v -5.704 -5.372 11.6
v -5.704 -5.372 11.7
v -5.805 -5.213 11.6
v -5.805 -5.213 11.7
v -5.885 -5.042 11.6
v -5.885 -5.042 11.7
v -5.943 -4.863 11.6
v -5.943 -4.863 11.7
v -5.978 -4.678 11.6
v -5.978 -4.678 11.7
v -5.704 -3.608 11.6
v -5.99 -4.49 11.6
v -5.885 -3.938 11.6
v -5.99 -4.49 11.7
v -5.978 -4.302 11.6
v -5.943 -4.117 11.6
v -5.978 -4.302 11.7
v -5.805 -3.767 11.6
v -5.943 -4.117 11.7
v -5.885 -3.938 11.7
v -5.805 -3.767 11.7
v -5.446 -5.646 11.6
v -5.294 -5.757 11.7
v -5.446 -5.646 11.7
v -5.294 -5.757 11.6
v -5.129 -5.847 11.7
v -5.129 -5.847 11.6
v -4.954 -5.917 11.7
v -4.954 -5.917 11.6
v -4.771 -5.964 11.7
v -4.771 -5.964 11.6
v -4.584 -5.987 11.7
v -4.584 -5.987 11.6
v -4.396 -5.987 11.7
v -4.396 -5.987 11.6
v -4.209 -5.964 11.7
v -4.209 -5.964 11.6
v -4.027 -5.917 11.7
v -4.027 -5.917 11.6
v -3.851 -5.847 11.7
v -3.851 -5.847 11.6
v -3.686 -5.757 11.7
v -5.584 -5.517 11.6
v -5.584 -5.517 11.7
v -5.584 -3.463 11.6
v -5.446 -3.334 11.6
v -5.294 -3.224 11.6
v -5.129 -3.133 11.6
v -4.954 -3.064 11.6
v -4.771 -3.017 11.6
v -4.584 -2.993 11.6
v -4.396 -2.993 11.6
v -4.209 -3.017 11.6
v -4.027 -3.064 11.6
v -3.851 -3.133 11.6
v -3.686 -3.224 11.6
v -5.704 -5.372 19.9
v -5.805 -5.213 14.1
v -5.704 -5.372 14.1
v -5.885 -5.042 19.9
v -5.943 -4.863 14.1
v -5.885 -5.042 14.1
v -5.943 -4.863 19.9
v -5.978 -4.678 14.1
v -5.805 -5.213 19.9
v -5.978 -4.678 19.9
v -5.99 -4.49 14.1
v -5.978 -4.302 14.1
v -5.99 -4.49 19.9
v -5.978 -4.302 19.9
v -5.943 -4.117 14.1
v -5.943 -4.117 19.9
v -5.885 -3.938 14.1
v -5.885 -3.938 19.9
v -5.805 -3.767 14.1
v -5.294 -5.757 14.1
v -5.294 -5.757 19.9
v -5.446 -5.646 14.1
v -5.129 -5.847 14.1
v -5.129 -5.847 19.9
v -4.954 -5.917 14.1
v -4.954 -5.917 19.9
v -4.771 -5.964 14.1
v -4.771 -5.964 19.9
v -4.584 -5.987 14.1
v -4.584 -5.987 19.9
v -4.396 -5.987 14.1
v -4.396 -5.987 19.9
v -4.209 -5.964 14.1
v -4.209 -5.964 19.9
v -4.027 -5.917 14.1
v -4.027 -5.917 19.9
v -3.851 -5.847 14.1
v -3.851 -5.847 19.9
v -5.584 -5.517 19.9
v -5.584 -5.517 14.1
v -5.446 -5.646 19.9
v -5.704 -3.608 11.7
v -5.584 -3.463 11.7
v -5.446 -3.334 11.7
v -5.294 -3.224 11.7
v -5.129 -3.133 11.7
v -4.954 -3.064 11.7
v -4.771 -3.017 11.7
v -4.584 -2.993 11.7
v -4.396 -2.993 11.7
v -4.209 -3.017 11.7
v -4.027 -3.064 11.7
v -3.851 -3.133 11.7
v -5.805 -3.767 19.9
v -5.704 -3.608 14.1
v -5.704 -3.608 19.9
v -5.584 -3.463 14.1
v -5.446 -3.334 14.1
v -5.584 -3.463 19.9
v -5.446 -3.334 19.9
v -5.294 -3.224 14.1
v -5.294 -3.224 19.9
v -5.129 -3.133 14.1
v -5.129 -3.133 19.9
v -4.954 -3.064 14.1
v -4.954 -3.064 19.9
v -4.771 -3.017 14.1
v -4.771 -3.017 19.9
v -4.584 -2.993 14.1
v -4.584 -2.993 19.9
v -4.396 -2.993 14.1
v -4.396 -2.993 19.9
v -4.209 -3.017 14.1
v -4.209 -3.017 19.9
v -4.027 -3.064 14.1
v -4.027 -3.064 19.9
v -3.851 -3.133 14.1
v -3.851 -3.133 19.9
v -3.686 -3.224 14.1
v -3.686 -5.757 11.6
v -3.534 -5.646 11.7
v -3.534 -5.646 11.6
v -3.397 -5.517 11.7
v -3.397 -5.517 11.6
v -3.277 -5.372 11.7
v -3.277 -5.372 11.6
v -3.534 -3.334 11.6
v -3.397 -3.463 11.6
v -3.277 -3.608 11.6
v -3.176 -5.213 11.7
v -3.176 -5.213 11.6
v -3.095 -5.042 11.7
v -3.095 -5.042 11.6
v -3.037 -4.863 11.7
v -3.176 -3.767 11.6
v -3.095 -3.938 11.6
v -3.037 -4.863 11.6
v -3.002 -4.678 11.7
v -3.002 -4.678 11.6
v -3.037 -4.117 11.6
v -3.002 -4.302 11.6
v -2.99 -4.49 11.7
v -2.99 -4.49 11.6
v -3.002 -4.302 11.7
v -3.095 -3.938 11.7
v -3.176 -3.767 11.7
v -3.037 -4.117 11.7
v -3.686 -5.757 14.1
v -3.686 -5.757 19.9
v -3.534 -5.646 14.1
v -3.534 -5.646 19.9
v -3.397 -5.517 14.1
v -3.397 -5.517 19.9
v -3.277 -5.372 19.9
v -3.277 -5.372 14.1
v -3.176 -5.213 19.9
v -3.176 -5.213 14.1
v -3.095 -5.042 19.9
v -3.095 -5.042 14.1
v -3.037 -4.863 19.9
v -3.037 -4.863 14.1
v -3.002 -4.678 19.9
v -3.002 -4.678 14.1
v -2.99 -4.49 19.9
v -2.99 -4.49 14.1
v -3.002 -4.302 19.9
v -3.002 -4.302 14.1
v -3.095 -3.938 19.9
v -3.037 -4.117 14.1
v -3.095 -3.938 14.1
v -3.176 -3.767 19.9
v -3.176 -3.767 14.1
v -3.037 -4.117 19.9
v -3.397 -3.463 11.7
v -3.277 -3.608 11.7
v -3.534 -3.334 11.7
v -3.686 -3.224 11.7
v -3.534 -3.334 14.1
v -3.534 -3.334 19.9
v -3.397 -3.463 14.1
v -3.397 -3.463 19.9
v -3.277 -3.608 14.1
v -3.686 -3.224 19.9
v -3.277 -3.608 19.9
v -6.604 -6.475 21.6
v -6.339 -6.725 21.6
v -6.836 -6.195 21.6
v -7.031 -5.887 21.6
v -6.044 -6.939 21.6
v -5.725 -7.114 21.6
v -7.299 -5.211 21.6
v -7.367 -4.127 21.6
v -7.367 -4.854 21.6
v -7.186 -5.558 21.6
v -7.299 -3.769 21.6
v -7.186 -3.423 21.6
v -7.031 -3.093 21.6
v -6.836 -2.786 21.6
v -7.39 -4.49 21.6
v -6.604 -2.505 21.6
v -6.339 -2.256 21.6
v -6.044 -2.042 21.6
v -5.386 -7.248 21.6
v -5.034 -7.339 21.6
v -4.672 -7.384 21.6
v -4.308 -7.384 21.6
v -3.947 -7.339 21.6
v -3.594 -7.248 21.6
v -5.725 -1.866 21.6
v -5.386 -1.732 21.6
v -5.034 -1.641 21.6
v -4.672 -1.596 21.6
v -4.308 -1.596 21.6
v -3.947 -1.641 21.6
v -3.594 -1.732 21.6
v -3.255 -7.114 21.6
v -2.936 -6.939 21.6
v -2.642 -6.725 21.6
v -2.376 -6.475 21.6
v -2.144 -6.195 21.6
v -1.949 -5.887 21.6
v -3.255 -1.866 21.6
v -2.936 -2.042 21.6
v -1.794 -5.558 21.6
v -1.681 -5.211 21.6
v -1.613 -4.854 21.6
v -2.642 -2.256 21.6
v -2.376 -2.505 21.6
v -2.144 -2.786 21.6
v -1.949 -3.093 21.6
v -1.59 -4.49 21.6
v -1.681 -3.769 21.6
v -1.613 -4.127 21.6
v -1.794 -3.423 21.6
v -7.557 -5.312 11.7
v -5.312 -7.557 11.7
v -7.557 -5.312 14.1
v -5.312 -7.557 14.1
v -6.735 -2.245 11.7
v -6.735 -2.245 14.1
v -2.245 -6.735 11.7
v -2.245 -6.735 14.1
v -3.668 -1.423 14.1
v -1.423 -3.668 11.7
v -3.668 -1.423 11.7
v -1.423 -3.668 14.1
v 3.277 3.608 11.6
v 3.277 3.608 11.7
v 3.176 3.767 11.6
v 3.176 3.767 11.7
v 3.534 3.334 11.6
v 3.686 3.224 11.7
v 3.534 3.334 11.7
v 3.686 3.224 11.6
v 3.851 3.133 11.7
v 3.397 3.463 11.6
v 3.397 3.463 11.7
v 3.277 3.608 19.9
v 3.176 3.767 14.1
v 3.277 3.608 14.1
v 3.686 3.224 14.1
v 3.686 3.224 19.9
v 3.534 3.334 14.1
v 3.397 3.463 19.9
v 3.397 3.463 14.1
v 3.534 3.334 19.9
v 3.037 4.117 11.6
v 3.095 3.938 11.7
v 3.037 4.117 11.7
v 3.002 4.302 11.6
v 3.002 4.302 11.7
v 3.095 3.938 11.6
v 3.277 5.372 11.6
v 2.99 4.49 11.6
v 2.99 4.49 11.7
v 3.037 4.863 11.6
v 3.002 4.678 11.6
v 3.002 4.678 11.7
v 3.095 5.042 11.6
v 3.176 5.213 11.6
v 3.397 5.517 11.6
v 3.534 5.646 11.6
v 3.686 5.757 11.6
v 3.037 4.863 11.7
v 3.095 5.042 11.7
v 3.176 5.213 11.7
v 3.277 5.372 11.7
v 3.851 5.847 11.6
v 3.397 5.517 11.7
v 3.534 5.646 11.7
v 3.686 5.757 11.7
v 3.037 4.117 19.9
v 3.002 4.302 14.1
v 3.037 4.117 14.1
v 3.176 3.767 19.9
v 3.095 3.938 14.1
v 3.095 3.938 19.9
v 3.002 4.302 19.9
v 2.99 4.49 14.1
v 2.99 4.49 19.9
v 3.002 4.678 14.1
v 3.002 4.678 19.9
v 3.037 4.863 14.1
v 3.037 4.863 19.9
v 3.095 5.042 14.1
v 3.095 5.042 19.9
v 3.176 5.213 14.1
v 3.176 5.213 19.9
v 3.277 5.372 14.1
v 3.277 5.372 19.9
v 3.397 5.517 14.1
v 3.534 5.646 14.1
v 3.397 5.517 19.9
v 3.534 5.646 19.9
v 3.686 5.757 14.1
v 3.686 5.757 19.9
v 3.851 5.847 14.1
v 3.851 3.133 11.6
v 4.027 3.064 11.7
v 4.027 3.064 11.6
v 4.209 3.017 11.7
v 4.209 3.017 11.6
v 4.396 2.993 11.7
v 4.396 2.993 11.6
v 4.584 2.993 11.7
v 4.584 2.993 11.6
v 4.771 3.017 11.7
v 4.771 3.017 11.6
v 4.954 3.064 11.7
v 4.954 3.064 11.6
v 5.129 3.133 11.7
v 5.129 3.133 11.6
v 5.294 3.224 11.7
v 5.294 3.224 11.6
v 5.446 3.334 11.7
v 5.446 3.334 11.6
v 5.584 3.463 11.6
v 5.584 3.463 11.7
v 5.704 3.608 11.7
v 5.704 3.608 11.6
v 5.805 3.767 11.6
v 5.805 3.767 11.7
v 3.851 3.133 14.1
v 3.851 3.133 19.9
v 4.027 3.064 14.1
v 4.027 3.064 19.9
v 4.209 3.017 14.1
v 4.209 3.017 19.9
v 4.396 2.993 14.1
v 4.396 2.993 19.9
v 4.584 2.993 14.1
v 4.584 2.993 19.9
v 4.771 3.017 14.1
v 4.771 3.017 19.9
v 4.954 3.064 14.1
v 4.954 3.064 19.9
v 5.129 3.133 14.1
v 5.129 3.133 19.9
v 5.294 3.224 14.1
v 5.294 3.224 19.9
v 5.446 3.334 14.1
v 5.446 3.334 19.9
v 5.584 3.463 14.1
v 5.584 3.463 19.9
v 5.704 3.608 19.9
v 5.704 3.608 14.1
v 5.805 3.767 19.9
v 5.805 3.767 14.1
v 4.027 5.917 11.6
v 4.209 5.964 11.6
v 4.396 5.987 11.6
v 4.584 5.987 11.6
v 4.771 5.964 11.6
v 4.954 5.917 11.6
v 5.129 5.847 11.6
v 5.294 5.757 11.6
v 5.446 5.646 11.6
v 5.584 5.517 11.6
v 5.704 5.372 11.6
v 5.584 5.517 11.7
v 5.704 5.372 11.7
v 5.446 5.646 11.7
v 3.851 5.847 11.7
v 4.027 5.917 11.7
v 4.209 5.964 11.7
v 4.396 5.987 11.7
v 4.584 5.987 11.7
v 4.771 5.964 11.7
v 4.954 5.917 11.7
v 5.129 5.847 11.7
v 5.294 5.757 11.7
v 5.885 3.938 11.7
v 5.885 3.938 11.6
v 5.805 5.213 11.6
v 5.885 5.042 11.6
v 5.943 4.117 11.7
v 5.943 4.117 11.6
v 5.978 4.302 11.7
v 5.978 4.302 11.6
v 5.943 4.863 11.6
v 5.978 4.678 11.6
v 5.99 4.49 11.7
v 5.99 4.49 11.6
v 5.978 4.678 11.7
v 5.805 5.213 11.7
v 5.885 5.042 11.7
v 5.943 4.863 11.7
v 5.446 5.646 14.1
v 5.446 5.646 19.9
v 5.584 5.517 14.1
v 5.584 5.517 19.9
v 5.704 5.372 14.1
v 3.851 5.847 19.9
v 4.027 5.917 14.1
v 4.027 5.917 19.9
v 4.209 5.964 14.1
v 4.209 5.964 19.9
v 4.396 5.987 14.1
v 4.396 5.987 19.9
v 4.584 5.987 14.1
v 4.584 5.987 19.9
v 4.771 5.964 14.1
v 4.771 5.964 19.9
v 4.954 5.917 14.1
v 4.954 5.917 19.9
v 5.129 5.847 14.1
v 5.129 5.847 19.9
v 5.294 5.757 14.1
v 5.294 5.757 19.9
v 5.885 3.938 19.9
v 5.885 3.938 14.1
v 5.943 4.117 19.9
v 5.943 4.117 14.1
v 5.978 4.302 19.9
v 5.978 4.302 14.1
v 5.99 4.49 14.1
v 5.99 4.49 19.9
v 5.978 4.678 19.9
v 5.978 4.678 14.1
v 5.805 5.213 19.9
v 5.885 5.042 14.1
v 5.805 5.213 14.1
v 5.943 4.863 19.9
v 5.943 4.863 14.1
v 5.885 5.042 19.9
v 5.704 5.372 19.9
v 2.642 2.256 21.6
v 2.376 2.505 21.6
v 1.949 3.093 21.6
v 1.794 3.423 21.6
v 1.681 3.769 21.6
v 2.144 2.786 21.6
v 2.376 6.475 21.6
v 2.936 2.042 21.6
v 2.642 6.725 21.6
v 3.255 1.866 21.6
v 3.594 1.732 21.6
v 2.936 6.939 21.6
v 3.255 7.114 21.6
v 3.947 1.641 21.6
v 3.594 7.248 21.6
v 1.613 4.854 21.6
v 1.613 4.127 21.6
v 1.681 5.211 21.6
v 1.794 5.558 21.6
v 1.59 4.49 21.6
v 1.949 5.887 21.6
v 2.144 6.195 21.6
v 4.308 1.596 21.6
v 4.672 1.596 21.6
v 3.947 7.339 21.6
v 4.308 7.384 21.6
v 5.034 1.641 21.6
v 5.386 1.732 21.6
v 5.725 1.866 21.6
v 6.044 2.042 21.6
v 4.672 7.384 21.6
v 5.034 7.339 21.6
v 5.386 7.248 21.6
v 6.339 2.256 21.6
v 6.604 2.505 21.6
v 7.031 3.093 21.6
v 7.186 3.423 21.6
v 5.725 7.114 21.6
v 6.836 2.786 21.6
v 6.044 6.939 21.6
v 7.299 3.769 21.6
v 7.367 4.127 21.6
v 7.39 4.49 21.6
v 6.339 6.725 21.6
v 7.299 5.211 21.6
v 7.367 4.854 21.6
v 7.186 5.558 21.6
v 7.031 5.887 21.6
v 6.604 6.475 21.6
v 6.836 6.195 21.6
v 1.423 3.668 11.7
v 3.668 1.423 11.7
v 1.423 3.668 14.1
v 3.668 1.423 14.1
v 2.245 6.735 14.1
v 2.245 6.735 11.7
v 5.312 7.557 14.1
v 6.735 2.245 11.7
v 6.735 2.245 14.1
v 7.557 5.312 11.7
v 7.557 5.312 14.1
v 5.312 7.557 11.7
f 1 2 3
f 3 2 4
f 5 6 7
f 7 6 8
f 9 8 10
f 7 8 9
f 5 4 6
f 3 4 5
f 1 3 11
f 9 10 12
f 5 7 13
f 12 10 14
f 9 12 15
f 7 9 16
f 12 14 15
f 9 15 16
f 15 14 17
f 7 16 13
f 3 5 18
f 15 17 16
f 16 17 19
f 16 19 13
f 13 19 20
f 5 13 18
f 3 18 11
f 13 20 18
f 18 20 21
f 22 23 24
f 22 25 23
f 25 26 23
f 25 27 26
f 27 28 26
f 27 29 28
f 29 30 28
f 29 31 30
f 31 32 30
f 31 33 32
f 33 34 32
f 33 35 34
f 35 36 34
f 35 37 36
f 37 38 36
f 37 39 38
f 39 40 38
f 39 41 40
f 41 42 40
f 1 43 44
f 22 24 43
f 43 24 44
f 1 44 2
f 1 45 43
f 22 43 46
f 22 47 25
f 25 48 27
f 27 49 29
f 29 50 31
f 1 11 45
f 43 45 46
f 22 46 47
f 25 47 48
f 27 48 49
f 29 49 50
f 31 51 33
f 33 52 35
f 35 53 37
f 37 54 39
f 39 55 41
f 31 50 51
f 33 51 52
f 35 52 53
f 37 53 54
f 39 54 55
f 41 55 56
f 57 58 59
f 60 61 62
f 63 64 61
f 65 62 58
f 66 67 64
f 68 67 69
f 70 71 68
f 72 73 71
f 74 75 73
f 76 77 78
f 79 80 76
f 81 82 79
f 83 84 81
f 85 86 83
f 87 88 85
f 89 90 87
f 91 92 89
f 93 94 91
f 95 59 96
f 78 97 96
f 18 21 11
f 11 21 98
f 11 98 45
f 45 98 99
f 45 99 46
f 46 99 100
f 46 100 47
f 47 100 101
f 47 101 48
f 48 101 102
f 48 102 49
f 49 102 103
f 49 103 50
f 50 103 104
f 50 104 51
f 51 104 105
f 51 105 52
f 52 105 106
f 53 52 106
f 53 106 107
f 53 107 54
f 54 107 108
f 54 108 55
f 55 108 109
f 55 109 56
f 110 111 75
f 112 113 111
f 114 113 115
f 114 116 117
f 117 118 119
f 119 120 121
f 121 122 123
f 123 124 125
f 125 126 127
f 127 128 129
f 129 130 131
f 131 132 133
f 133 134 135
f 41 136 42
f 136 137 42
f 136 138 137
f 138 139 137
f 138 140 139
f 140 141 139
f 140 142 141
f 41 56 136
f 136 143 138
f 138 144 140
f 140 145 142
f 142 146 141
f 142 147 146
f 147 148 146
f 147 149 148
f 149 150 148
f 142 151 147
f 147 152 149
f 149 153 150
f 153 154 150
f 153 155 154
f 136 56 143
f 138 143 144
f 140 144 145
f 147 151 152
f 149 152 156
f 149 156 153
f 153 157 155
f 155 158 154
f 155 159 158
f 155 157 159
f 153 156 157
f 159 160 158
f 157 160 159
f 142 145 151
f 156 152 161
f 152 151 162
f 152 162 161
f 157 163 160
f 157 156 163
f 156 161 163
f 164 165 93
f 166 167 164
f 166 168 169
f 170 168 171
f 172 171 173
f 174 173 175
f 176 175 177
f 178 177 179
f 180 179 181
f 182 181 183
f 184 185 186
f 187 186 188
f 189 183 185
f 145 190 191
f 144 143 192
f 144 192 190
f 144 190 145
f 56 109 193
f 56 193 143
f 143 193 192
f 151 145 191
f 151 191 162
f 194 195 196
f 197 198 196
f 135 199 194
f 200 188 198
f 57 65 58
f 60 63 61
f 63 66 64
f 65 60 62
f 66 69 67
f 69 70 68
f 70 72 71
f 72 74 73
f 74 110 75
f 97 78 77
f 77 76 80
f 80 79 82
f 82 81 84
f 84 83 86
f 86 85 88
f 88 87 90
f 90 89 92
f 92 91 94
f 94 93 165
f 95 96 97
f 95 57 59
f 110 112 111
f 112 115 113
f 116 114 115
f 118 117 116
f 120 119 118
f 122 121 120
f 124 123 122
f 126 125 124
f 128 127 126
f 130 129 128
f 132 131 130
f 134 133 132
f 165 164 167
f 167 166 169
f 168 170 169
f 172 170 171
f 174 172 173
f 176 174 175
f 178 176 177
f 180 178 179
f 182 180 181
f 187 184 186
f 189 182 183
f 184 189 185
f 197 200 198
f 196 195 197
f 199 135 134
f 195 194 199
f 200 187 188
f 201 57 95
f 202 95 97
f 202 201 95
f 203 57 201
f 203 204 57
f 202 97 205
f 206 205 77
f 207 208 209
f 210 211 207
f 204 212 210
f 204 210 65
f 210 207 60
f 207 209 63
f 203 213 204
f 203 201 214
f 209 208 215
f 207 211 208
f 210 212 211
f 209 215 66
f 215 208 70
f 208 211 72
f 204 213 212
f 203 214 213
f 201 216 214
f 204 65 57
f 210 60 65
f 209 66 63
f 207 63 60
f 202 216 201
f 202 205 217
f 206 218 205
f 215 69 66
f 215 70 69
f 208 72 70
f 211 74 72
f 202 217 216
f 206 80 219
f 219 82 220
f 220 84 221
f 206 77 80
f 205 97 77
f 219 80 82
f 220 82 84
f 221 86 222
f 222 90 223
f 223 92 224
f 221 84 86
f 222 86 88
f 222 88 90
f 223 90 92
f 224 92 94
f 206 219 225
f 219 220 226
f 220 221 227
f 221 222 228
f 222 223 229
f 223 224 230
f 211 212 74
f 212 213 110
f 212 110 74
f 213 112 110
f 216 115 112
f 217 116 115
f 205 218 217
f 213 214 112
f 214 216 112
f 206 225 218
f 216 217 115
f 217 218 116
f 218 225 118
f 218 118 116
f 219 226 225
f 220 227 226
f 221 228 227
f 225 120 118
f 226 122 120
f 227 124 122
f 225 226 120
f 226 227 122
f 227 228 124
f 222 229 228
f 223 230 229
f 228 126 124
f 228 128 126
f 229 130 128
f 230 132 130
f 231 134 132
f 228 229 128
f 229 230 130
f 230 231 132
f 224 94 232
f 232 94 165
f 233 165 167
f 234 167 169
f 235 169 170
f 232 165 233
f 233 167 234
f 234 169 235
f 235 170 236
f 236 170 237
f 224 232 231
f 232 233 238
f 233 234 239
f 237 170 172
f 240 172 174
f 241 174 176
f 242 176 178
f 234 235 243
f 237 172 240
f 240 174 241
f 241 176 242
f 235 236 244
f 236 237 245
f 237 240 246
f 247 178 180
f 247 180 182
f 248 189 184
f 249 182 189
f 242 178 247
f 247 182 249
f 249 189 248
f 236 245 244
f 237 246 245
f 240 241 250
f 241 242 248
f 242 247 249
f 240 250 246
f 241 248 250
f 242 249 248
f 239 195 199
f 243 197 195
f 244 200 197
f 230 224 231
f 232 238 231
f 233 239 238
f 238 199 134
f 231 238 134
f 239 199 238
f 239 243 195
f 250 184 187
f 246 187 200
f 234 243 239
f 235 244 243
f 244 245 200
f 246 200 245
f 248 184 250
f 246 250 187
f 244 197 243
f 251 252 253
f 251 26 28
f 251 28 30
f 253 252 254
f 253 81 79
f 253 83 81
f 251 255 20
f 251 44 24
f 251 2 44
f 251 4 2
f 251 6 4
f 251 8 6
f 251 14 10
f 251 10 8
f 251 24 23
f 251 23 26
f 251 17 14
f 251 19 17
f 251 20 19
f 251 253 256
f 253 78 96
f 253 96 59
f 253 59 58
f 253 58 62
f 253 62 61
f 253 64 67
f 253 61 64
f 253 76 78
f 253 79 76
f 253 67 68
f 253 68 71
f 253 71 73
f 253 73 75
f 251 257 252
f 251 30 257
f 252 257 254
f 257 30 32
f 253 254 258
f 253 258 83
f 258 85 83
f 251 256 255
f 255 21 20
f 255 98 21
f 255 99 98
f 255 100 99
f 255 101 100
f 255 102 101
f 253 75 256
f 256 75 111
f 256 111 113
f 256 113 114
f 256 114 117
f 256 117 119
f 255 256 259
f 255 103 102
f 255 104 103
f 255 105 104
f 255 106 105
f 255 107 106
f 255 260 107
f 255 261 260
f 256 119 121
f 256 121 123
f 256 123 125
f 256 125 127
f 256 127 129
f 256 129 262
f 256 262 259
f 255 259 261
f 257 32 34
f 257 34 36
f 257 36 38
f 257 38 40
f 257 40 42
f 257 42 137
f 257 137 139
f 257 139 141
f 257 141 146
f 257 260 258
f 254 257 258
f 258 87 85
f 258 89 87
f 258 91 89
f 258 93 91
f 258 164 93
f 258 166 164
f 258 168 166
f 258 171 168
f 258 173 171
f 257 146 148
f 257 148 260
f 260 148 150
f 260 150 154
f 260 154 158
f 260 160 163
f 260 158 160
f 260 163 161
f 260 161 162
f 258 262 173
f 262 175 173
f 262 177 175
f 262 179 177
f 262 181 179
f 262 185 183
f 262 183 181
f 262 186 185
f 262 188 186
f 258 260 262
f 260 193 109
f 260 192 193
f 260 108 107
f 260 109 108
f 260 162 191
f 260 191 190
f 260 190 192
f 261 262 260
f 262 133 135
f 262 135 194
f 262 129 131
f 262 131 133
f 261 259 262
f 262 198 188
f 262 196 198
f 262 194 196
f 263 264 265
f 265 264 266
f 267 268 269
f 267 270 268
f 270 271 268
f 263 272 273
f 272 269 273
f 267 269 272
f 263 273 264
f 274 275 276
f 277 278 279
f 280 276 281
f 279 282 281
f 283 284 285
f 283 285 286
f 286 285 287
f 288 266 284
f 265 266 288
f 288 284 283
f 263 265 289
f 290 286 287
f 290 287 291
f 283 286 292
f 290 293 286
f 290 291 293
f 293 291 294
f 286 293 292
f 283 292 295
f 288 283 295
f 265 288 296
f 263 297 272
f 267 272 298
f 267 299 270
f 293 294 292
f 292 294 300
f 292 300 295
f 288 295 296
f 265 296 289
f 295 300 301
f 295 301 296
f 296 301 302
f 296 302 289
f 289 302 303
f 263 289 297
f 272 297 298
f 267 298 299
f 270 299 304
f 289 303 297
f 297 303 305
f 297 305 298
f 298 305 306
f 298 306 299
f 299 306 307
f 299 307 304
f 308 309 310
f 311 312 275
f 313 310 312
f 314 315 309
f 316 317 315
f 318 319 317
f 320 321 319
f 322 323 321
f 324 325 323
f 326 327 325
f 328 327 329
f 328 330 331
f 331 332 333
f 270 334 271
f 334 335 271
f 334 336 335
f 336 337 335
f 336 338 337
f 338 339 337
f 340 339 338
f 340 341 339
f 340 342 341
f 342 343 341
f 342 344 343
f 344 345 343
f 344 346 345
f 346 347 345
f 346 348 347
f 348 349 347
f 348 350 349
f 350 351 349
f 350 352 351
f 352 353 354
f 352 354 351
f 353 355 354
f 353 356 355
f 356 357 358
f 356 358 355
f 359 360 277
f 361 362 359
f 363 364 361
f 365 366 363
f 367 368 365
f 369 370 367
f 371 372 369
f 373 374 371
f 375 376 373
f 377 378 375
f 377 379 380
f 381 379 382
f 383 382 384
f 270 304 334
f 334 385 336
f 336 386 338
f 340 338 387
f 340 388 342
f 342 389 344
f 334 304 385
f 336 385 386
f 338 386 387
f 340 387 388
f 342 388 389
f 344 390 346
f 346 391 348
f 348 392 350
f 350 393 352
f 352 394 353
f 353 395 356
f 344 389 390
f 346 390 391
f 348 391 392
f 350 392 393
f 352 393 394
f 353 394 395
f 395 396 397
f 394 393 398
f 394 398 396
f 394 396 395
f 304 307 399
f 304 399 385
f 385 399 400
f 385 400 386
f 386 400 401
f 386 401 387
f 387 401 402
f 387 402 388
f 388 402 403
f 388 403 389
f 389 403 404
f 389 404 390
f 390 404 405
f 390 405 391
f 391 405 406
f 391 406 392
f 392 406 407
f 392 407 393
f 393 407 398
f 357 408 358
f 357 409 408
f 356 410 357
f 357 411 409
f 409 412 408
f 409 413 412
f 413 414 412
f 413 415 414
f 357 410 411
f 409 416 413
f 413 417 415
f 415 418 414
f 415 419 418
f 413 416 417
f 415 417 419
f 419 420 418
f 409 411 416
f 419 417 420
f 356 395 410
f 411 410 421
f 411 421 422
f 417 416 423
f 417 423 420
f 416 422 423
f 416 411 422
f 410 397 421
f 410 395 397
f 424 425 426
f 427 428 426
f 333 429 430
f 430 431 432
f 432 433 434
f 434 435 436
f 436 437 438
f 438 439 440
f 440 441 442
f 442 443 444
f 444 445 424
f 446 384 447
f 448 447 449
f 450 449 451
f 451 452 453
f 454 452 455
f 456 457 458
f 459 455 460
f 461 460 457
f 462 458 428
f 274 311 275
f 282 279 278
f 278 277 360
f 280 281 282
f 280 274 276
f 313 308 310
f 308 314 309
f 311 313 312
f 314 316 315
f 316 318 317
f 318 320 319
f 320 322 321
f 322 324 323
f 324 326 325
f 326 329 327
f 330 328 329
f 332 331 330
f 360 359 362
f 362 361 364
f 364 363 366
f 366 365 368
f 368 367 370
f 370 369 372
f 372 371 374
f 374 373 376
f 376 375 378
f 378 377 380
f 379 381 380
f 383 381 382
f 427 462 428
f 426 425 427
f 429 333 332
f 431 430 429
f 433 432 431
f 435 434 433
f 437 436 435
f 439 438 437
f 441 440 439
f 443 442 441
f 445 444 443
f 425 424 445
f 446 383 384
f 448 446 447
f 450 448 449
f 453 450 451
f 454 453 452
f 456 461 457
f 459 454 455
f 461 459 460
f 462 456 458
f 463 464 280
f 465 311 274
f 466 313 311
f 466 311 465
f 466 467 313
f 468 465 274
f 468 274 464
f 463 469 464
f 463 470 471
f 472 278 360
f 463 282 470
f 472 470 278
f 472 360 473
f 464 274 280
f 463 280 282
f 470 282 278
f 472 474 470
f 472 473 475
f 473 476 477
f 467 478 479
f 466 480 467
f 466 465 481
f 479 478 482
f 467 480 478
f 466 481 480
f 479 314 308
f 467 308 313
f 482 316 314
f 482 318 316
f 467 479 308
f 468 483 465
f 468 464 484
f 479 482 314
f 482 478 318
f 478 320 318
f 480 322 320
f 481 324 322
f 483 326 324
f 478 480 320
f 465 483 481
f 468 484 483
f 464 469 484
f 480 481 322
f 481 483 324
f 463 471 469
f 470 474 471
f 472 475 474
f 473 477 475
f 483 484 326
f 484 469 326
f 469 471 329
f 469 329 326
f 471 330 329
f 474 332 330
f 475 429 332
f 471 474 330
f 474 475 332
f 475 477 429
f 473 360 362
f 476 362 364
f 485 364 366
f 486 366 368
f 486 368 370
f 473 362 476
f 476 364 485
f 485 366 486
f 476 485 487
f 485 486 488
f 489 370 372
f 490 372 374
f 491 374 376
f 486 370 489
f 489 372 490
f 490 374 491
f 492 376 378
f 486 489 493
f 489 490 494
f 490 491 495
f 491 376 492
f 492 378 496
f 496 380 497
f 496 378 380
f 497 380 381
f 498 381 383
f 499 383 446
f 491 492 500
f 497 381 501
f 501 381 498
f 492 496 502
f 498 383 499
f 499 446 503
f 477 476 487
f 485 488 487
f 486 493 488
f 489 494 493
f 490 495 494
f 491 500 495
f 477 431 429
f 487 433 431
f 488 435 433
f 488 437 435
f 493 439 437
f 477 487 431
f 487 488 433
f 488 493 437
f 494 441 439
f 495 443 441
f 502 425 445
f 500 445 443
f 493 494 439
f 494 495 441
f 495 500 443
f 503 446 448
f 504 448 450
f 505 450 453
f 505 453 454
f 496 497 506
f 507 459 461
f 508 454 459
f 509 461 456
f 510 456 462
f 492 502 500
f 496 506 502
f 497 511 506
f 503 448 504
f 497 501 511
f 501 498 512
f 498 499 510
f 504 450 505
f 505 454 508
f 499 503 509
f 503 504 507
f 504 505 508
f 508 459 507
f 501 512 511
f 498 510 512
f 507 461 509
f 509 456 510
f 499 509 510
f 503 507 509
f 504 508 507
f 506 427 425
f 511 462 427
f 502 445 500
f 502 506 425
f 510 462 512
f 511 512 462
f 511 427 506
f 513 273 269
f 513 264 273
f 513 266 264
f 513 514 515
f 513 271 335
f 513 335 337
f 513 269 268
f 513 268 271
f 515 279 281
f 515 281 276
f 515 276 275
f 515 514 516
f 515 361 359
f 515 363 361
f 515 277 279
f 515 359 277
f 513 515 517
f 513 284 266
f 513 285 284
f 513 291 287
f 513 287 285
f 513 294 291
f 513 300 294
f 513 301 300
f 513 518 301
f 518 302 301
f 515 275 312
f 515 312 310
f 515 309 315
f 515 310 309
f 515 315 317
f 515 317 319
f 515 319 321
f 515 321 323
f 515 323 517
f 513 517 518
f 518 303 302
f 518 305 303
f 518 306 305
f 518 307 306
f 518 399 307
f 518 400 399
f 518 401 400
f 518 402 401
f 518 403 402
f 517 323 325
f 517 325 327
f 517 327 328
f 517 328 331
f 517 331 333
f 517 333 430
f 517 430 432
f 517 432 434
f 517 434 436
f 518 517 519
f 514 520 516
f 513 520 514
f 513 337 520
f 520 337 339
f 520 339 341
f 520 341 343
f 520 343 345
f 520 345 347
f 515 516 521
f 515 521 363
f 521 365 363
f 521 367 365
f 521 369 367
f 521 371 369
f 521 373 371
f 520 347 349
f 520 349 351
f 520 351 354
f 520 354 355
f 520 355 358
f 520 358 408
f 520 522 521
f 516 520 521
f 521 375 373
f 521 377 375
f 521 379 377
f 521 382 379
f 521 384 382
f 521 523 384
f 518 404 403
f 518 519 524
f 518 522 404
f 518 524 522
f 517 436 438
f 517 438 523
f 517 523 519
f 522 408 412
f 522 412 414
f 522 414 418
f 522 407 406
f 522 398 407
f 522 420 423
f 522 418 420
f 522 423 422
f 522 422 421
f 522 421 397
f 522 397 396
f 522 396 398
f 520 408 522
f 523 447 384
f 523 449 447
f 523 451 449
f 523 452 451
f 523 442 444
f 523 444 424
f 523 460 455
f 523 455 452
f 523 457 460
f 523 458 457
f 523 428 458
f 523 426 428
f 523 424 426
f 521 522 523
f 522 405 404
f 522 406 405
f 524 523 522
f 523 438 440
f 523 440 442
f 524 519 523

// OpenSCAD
$fn = 50;

difference() {
	union() {
		translate(v = [-4.490128060534576, -4.490128060534576, 11.600000000000001]) {
			cylinder(h = 10, r = 1.5);
		}
		translate(v = [-4.490128060534576, -4.490128060534576, 19.900000000000002]) {
			cylinder(h = 1.7, r1 = 1.5, r2 = 2.9);
		}
		translate(v = [-4.490128060534576, -4.490128060534576, 11.7]) {
			rotate(a = [0, 0, -105.0]) {
				linear_extrude(height = 2.4) {
					polygon(points = [[3.1754264805429417, 0.0], [1.5877132402714713, 2.75], [-1.5877132402714702, 2.7500000000000004], [-3.1754264805429417, 3.888775875324659e-16], [-1.5877132402714722, -2.7499999999999996], [1.5877132402714687, -2.7500000000000013]]);
				}
			}
		}
		translate(v = [4.490128060534576, 4.490128060534576, 11.600000000000001]) {
			cylinder(h = 10, r = 1.5);
		}
		translate(v = [4.490128060534576, 4.490128060534576, 19.900000000000002]) {
			cylinder(h = 1.7, r1 = 1.5, r2 = 2.9);
		}
		translate(v = [4.490128060534576, 4.490128060534576, 11.7]) {
			rotate(a = [0, 0, 75.0]) {
				linear_extrude(height = 2.4) {
					polygon(points = [[3.1754264805429417, 0.0], [1.5877132402714713, 2.75], [-1.5877132402714702, 2.7500000000000004], [-3.1754264805429417, 3.888775875324659e-16], [-1.5877132402714722, -2.7499999999999996], [1.5877132402714687, -2.7500000000000013]]);
				}
			}
		}
	}
	union();
}
